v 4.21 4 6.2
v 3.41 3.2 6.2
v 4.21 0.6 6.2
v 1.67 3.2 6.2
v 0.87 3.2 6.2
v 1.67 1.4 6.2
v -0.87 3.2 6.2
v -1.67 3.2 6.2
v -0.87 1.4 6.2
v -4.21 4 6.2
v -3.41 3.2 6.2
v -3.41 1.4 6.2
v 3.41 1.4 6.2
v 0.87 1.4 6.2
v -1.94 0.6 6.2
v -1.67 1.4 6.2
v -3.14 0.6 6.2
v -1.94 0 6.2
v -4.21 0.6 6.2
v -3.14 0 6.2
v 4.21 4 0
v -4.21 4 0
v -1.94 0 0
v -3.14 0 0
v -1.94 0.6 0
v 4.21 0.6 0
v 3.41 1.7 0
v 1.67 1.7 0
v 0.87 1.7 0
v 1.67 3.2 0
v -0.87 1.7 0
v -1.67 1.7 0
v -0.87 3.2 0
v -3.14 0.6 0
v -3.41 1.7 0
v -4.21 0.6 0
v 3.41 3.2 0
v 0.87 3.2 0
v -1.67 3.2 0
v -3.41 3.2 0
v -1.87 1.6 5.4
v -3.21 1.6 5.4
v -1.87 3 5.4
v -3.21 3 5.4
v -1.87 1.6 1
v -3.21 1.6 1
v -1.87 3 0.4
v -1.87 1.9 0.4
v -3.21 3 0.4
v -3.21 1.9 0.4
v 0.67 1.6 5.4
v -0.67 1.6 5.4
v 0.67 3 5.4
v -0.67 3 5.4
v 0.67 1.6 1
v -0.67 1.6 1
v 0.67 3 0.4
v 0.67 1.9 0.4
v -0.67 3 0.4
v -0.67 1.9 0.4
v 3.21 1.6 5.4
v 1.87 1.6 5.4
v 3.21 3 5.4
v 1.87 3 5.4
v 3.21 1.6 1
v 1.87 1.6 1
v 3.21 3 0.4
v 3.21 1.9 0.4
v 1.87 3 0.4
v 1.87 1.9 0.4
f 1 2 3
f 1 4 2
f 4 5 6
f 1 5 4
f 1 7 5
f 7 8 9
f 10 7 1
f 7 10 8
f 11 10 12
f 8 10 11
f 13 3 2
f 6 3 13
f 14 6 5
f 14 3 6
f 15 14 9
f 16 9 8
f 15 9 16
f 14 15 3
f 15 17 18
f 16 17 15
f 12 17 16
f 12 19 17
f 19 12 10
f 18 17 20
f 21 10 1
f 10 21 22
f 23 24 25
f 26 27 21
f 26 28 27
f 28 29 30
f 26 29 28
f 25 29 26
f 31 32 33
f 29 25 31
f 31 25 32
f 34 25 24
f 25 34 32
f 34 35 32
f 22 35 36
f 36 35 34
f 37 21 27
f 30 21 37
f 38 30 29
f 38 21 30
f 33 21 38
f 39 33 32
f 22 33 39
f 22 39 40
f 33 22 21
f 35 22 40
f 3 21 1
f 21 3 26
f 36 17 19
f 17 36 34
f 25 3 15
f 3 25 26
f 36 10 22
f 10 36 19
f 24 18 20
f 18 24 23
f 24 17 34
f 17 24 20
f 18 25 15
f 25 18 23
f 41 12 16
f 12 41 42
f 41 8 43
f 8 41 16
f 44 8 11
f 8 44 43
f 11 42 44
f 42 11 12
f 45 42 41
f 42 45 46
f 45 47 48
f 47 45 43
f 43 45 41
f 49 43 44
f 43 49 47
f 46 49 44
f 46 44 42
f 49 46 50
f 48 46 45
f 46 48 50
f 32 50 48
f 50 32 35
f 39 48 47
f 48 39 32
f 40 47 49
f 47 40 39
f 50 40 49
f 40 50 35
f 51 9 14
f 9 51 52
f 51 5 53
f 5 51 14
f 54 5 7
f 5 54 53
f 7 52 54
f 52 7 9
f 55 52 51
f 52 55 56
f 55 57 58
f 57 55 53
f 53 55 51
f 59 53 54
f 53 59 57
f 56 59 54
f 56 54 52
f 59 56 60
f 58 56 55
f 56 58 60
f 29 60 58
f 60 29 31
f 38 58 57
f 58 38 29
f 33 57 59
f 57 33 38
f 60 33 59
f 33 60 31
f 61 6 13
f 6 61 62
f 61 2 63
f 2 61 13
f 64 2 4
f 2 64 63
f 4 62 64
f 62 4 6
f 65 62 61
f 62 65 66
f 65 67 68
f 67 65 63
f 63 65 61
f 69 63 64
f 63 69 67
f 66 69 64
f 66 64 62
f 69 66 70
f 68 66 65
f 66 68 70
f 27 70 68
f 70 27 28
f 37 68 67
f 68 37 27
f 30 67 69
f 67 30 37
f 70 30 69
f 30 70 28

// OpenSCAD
// file: three-channel-common.scad
/* Internal helper for the two three-channel prototypes; open a primary file.
   Copyright Daniel Eric Fredriksen / Quantyra.
   SPDX-License-Identifier: CERN-OHL-S-2.0
   Source Location: https://github.com/Quantyra/connectors
   Derived from the paired V2 direct-overlap arrangement. Original files unchanged.
   Display proxies and cutaway removals are NOT printable parts. */

eps = 0.01;
male_width = 0.64;
male_exposed = 6.00; // assumed usable exposed metal, including tip; measure actual jumper before use
tip_taper = 0.60;
tip_flat = 0.20;
male_standoff = 0;
collar_width = 2.54; // maximum assumed across pitch AND stack directions
collar_length = 4.00; // illustrative
outer_offset = 0.10; // center stays centered; independent outer jumpers shift out
rail_width = 1.20;
rail_height = 0.60;

mouth_width = bore_width + 2*mouth_ease;
body_width = 2*pitch + mouth_width + 2*wall;
bottom = -mouth_ease-wall;
top = contact_height+mouth_ease+wall;
function cy(i) = (i-1)*pitch; // neutral A, B, C; A adjacent to external rail
function my(i) = cy(i)+(i-1)*outer_offset;

// Axial X: component face = 0; jumper face = length.
// Stations [axial X, width across channels, floor, ceiling].
stations = [
    [0,                   mouth_width, -mouth_ease, contact_height+mouth_ease],
    [component_flare_end,  bore_width,  0,           contact_height],
    [guide_start,          bore_width,  0,           contact_height],
    [guide_crest,          bore_width,  guide_floor, contact_height],
    [length,              mouth_width, guide_floor-mouth_ease, contact_height+mouth_ease]
];

assert(length > guide_crest && guide_crest > guide_start);
assert(guide_start > 5.00 && lead_insertion >= 4 && lead_insertion <= 5);
assert(component_flare_end > 0 && component_flare_end < guide_start);
assert(pitch-mouth_width >= 0.8-0.00001 && wall >= 0.8);
assert(lead_thickness >= guide_floor && contact_height > lead_thickness+male_width);
assert(bore_width > max(lead_width, male_width+2*outer_offset));
assert(pitch+outer_offset >= collar_width+0.09);
assert(length+male_standoff-male_exposed >= 0.20-0.00001);
assert(rail_width <= mouth_width+2*wall);

module box(x0,x1,y0,y1,z0,z1) {
    translate([x0,y0,z0]) cube([x1-x0,y1-y0,z1-z0]);
}
module passage(i) {
    ss = concat([[-eps,mouth_width,-mouth_ease,contact_height+mouth_ease]],
                stations,
                [[length+eps,mouth_width,guide_floor-mouth_ease,contact_height+mouth_ease]]);
    pts = [for(s=ss) each [
        [s[0],cy(i)-s[1]/2,s[2]], [s[0],cy(i)+s[1]/2,s[2]],
        [s[0],cy(i)+s[1]/2,s[3]], [s[0],cy(i)-s[1]/2,s[3]]]];
    n = len(ss);
    faces = concat([[3,2,1,0]],
        [for(j=[0:n-2],k=[0:3])
            [4*j+k,4*j+(k+1)%4,4*(j+1)+(k+1)%4,4*(j+1)+k]],
        [[4*(n-1),4*(n-1)+1,4*(n-1)+2,4*(n-1)+3]]);
    polyhedron(points=pts,faces=faces,convexity=10);
}
module sleeve() {
    difference() {
        union() {
            box(0,length,-body_width/2,body_width/2,bottom,top);
            // Broad continuous external rail beside A. No thinning of any wall.
            box(0,length,cy(0)-rail_width/2,cy(0)+rail_width/2,
                bottom-rail_height,bottom+eps);
        }
        for(i=[0:2]) passage(i);
    }
}
module leads() {
    for(i=[0:2]) {
        if(package_kind=="TO92") {
            // Example only: body face at -7; first 3 mm straight;
            // spread over next 3 mm; last bend ends at -1.
            yc=(i-1)*1.27;
            box(-7,-4,yc-lead_width/2,yc+lead_width/2,0,lead_thickness);
            hull() {
                box(-4-eps,-4,yc-lead_width/2,yc+lead_width/2,0,lead_thickness);
                box(-1,-1+eps,cy(i)-lead_width/2,cy(i)+lead_width/2,0,lead_thickness);
            }
            box(-1,lead_insertion,cy(i)-lead_width/2,cy(i)+lead_width/2,0,lead_thickness);
        } else {
            // Nominal CASE 221A L=13.49, L1=3.45, shoulder b=1.34.
            face=lead_insertion-13.49;
            box(face,face+3.45,cy(i)-1.34/2,cy(i)+1.34/2,0,lead_thickness);
            box(face+3.45,lead_insertion,cy(i)-lead_width/2,cy(i)+lead_width/2,0,lead_thickness);
        }
    }
}
module component() {
    // Simplified envelope only; no electrical labels or fit claim from body shape.
    if(package_kind=="TO92")
        box(-11.83,-7,-2.60,2.60,-1.60,2.60);
    else {
        face=lead_insertion-13.49;
        box(face-10,face,-5.05,5.05,-2,2.45);
        box(face-15.12,face-10,-5.05,5.05,-2,-0.72);
    }
}
module male(i) {
    a=length+male_standoff-male_exposed;
    h=lead_thickness; // touching pose chosen by hand; NOT enforced by the cavity
    box(a+tip_taper,length+male_standoff,my(i)-male_width/2,my(i)+male_width/2,h,h+male_width);
    polyhedron(points=[for(s=[[a,tip_flat],[a+tip_taper,male_width]]) each [
        [s[0],my(i)-s[1]/2,h+(male_width-s[1])/2],
        [s[0],my(i)+s[1]/2,h+(male_width-s[1])/2],
        [s[0],my(i)+s[1]/2,h+(male_width+s[1])/2],
        [s[0],my(i)-s[1]/2,h+(male_width+s[1])/2]]],
        faces=[[3,2,1,0],[0,1,5,4],[1,2,6,5],[2,3,7,6],[3,0,4,7],[4,5,6,7]]);
}
module collars() {
    for(i=[0:2]) box(length+male_standoff,length+male_standoff+collar_length,
        my(i)-collar_width/2,my(i)+collar_width/2,
        lead_thickness+male_width/2-collar_width/2,
        lead_thickness+male_width/2+collar_width/2);
}
module proxies(show_component=true) {
    color([0.95,0.58,0.08]) leads();
    for(i=[0:2]) color([0.76,0.17,0.58]) male(i);
    color([0.25,0.27,0.30]) collars();
    if(show_component) color([0.15,0.17,0.20]) component();
}
module print_orientation() {
    // [axial,pitch,stack] -> [pitch,stack-bottom+rail_height,length-axial]
    multmatrix([[0,1,0,0],[0,0,1,rail_height-bottom],[-1,0,0,length],[0,0,0,1]]) children();
}
if(view=="print") color([0.12,0.55,0.66]) print_orientation() sleeve();
else if(view=="assembly") {
    color([0.12,0.55,0.66]) sleeve();
    proxies();
} else if(view=="cutaway") {
    color([0.12,0.55,0.66]) render(convexity=10) difference() {
        sleeve();
        // Remove upper shell only in this illustration, retaining all three floors/dividers.
        box(-eps,length+eps,-body_width,body_width,lead_thickness+0.10,top+eps);
    }
    intersection() {
        proxies(false);
        box(-0.8,length+4.1,-body_width,body_width,bottom-1,top+2);
    }
} else if(view=="check_body") sleeve();
else if(view=="check_leads") leads();
else if(view=="check_males") for(i=[0:2]) male(i);
else if(view=="check_collars") collars();
else if(view=="check_component") component();
else assert(false,"Unknown view");

echo(prototype=package_kind, status="untested prototype",
    print_bounds_size=[body_width,top-bottom+rail_height,length],
    shared_bore=[bore_width,contact_height], guide=[bore_width,contact_height-guide_floor],
    minimum_exterior_wall=wall, minimum_divider=pitch-mouth_width,
    collar_gap=pitch+outer_offset-collar_width,
    nose=length+male_standoff-male_exposed,
    full_section_overlap=lead_insertion-(length+male_standoff-male_exposed+tip_taper));
// main file
/* TO-220 narrow-blade three-channel sleeve, millimetres.
   Copyright Daniel Eric Fredriksen / Quantyra.
   SPDX-License-Identifier: CERN-OHL-S-2.0
   Source Location: https://github.com/Quantyra/connectors
   UNTESTED PROTOTYPE. Narrow distal blades only; shoulders stay outside.
   Bounded CASE 221A-style geometry, not every TO-220 form. */

view = "print"; // print, assembly, cutaway, check_body, check_leads, check_males, check_collars, check_component
package_kind = "TO220";
pitch = 2.54;
length = 6.20;
bore_width = 1.34;
contact_height = 1.40;
mouth_ease = 0.20; // per wall
wall = 0.80;
guide_floor = 0.30; // below the 0.36 mm minimum illustrated blade thickness
component_flare_end = 0.80;
guide_start = 5.20;
guide_crest = 5.80;

// Inspection pose only: does not resize the printable body.
lead_width = 0.80;
lead_thickness = 0.49;
lead_insertion = 4.50; // bounded use: 4.00 to 5.00

include <three-channel-common.scad>
